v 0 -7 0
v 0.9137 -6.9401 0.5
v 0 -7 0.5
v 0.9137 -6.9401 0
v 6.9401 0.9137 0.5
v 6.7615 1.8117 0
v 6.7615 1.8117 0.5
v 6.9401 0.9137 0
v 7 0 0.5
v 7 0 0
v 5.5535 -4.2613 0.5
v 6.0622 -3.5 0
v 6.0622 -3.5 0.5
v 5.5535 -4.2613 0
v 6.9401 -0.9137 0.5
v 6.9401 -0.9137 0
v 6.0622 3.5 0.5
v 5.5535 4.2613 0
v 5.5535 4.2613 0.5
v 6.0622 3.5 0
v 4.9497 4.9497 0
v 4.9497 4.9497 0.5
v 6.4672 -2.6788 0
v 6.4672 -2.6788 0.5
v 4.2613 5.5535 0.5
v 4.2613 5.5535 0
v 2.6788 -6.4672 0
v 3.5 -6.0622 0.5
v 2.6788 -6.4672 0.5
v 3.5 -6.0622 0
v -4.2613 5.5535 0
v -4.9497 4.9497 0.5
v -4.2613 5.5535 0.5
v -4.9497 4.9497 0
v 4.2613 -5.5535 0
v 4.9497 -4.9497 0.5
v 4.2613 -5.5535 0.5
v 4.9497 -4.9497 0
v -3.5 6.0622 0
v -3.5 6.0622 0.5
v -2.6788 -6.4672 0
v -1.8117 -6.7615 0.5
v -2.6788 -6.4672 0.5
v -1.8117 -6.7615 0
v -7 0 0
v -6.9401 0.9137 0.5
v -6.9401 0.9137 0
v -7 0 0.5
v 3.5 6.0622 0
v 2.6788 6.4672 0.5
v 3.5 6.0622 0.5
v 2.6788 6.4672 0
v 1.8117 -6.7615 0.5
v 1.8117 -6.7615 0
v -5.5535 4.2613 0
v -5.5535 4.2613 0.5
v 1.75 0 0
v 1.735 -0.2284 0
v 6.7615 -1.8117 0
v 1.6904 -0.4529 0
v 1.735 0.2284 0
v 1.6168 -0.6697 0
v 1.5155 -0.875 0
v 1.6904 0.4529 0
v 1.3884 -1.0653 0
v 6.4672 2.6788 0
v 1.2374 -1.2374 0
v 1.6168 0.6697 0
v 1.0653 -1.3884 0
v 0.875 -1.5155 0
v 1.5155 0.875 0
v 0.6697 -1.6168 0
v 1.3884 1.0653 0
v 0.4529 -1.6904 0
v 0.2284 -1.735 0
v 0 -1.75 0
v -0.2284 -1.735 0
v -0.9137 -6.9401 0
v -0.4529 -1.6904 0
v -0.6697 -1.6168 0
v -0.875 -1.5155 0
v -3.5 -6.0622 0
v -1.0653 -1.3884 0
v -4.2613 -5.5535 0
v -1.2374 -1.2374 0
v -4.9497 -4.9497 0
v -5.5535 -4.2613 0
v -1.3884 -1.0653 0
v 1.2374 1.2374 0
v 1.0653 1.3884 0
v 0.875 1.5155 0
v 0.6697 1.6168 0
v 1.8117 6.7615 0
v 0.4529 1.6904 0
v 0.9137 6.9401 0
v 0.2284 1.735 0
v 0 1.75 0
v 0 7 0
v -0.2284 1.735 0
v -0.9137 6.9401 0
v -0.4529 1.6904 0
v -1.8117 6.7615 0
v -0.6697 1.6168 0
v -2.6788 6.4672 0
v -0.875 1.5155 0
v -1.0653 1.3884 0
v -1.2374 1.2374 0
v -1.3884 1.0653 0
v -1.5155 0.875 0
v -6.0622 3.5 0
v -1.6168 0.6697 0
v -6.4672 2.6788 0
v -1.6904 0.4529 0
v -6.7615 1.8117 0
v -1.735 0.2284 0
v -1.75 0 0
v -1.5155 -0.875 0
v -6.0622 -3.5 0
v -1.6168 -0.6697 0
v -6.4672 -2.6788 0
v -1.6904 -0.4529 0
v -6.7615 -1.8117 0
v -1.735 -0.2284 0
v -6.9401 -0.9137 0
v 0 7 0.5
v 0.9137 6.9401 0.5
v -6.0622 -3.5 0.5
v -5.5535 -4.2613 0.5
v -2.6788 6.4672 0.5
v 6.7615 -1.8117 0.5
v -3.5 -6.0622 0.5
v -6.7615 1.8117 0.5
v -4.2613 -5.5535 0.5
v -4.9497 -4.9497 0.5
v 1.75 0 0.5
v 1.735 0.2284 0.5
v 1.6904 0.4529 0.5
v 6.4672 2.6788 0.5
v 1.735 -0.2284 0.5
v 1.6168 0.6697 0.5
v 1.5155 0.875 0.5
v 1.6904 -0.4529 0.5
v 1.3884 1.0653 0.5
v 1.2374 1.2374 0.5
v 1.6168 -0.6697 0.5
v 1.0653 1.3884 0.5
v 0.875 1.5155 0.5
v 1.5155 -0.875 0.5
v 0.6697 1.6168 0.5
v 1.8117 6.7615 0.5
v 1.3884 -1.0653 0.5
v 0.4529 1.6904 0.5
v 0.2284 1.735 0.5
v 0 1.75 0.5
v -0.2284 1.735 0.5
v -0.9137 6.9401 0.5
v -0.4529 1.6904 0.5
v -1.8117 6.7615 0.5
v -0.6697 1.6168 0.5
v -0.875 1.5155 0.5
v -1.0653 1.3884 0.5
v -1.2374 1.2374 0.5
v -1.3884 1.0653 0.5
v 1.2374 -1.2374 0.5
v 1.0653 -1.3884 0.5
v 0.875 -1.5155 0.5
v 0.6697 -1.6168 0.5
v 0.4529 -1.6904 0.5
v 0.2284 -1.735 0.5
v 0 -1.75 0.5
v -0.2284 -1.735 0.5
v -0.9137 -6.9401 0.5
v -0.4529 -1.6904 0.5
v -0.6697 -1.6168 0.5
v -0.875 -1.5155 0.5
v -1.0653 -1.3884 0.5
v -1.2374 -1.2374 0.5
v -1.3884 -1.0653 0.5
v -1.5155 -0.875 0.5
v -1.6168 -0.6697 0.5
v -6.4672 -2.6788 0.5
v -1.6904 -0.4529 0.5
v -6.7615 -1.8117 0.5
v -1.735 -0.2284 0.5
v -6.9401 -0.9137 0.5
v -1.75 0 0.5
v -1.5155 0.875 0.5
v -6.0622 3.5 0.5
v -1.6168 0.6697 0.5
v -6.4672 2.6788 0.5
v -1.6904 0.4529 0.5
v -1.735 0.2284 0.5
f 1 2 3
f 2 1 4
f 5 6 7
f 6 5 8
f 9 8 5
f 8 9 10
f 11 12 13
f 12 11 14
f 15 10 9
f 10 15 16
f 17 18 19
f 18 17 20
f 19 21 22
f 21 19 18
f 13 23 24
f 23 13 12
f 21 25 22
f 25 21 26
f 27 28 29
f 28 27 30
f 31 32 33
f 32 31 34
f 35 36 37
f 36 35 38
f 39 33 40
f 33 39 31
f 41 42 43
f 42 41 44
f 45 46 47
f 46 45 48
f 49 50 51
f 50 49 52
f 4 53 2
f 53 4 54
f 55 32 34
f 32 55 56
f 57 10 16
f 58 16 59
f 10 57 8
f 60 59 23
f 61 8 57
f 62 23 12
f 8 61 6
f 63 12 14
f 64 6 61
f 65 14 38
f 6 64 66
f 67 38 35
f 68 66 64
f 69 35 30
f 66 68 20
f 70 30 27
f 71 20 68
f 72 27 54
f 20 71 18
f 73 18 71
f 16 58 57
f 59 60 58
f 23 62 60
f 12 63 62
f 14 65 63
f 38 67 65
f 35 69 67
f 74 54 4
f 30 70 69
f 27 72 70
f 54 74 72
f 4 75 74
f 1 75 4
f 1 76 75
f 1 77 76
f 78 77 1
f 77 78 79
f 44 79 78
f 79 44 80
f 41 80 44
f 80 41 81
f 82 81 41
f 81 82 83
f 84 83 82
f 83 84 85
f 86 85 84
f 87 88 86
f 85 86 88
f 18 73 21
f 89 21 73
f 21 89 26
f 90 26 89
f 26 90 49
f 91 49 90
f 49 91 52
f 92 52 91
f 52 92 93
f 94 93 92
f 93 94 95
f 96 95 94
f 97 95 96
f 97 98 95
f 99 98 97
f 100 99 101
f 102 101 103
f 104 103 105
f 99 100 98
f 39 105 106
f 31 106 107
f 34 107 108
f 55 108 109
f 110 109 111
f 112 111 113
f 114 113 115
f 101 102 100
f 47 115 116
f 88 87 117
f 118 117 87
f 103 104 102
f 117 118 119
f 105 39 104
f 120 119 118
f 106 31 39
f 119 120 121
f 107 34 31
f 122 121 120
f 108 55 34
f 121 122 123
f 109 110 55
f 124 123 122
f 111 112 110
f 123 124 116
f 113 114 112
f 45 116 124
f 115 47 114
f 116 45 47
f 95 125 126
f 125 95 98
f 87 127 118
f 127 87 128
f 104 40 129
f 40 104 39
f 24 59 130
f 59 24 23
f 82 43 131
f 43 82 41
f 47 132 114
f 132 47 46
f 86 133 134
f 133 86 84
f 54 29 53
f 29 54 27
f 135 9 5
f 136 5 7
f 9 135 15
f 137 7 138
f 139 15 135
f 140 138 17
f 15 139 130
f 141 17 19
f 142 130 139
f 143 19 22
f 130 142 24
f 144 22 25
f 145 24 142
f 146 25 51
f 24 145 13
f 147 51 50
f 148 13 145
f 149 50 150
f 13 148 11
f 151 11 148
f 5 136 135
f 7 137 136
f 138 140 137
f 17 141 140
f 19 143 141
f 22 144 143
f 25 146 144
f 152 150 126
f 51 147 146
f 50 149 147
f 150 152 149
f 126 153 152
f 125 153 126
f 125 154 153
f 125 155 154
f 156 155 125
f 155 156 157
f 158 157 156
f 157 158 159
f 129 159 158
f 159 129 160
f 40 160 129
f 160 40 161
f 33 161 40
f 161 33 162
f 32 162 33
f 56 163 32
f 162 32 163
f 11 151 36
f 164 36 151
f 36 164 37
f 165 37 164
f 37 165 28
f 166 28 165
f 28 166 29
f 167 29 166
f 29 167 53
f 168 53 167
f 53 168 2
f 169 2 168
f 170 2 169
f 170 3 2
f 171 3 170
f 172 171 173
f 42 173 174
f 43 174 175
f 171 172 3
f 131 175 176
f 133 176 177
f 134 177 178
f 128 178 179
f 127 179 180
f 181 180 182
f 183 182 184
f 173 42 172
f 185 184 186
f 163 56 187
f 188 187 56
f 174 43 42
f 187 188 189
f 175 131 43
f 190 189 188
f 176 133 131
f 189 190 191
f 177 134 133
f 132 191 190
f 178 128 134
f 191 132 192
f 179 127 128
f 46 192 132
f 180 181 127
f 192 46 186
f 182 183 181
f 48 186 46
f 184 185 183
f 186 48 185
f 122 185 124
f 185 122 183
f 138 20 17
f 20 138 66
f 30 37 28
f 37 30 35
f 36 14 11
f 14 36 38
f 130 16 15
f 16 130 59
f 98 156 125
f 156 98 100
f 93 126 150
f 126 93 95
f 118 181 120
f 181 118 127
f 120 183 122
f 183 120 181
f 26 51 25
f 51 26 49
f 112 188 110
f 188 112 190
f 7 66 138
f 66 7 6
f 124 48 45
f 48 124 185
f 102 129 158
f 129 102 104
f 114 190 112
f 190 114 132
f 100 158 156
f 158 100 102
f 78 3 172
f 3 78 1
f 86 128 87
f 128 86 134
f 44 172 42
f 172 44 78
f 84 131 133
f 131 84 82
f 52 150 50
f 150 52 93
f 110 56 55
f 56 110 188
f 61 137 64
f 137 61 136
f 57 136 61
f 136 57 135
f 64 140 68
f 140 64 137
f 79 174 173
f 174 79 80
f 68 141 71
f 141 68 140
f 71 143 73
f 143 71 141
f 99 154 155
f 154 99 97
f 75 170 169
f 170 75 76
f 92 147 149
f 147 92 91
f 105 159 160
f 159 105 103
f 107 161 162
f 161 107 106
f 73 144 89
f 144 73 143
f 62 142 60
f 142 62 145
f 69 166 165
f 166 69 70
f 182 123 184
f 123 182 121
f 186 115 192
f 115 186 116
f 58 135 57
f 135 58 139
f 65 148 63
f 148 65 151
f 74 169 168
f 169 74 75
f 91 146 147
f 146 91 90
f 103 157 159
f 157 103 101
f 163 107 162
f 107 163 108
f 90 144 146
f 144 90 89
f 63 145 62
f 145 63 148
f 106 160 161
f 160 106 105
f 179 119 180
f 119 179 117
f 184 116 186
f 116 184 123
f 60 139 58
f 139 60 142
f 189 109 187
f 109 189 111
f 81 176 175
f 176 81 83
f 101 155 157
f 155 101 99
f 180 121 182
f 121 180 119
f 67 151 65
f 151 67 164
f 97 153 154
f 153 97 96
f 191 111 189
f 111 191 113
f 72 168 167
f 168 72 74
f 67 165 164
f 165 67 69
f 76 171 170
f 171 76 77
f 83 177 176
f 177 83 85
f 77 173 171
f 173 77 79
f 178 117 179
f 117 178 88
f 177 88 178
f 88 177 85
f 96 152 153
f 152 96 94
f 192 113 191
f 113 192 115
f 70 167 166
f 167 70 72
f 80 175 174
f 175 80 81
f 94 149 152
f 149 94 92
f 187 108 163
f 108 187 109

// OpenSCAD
// file: parameters.scad
// =============================================================================
// Gen-BN — nightly 2026-10-06 (physics_scorer, honest magpylib watts)
// 8-pole / 9-coil (winding factor 0.945, smoother torque and lower cogging than 6-coil) on the Gen-BK R52 rotors/steel, re-wound dense at fill 0.65 with 9.45 mm copper on 35–70 mm bobbins — more turns per metre than Gen-BK at the same ~360 m wire.
// Clocking 0 deg (magnets N facing S) + D-flat keyed bore + index notch + flip-symmetric hole map.
// Windable 2-piece bobbin; turns = physics_scorer turns_fit; copper only between flanges.
// Steel back-iron: 2× Ø138 × 4.76 mm (3/16") mild-steel discs (steel_backiron_disc.dxf); magnets sit ON the steel
// (through-pockets) -> score with --back-iron.
// =============================================================================
topology            = "dual_rotor";

// --- Wire / winding (physics_scorer winding-fit) -------------------------------
wire_awg            = 26;
wire_od             = 0.45;     // insulated OD mm (bare 0.405)
fill_realistic      = 0.65;     // insulated-wire area / window (DENSE layered wind with a jig; scorer cap 0.65)
turns               = 486;       // = physics_scorer turns_fit (do NOT raise)
coil_former_type    = "bobbin";
coil_core_inset     = 12.60;     // radial copper build: hub = copper boundary inset by this
wind_build_axial    = 0.0;      // nothing proud of the flanges
wind_build_radial   = 0.0;

// --- Bobbin (base + lid) ---------------------------------------------------------
coil_id_r           = 35.00;    // copper boundary sector
coil_od_r           = 70.00;
span_deg            = 33.94;    // = pitch - 2*asin((wall+0.85)/coil_id_r) -> >=1.2 mm stator web
former_web          = 9.45;     // copper height between flanges (TALL copper: steel keeps Bz up)
flange_t            = 0.80;     // >= 0.8 mm FDM wall rule (tall winds push on the flanges)
wall                = 1.00;     // flange lip beyond copper
former_bare_h       = former_web + 2 * flange_t;
coil_envelope_h     = former_bare_h + 2 * wind_build_axial;
tab_w               = 7.0;
tab_len             = 7.0;
tab_h               = former_bare_h / 2;
pin_d               = 1.9;      // 1.75 mm filament locating pin
coil_mount_r        = coil_od_r + 0.2 + 4.0;
lead_y              = 1.6;
lead_slot_w         = 0.9;
lead_groove_d       = 0.6;

// --- Gap -------------------------------------------------------------------------
run_clear           = 0.50;     // rotor face -> flange
gap_spacer_h        = run_clear + wind_build_axial;
m2m                 = coil_envelope_h + 2 * run_clear;   // rotor face to rotor face (= gap_sleeve length)

// --- Stator ----------------------------------------------------------------------
coil_stations       = 9;
bay_clear           = 0.25;
stator_thick        = former_bare_h;                        // bobbins flush both faces
stator_od           = 160.0;
shaft_clear_stator  = 14.0;     // stator is static; gap sleeve OD 12 spins inside

// --- Rotor(s) --------------------------------------------------------------------
magnet_Br           = 1.43;     // N52
magnet_d_large      = 20.0;
magnet_h_large      = 5.0;      // one O20x5 per pocket
magnet_h_small      = 5.0;      // one O5x5 per pocket
halbach_magnetisation = "diametric"; // O5x5 assist magnets MUST be DIAMETRICALLY magnetised (tangential)
rotor_b_same_axis   = true;     // same-index magnets share one axis: N faces S across the gap
large_pocket_d      = 20.3;
small_pocket_d      = 5.3;
pocket_h            = 5.10;     // THROUGH the carrier: magnet back face sits on the steel disc
large_n             = 8;
R_large             = 52.0;
R_small_inner       = 41.0;
R_small_mid         = 52.0;
R_small_outer       = 63.0;
small_r_list        = [R_small_inner, R_small_mid, R_small_outer];   // O5 pockets between poles
carrier_od          = 138.0;
carrier_thick       = pocket_h;
hub_h               = 12.0;     // > steel_t + insert: radial set-screw clears the steel
hub_od              = 24.0;     // slim hub so the M4 brace rods fit at R~18 inside the coil ring
hub_insert_d        = 4.0;      // M3 heat-set insert, radial, bears on the D-flat
rotor_b_offset_deg  = 0.0;      // CLOCKING: magnets directly opposite
shaft_key           = "dflat";
dflat_depth         = 0.5;      // 8 mm shaft with 0.5 mm flat (7.5 across flat)
index_notch_d       = 3.0;

// --- Steel back-iron (buyable laser-cut) -------------------------------------------
steel_t             = 4.76;      // mild steel thickness (image method ignores it; sized from steel_flux.py so the return path stays well below saturation)
steel_center_hole   = 26.0;     // slips over the rotor hub (OD 24)
steel_od            = carrier_od;   // steel disc OD = rotor carrier OD

// --- Modular MAX interface ----------------------------------------------------------
shaft_bore          = 8.35;
dflat_x             = 4.0 - dflat_depth + (shaft_bore - 8.0) / 2;
bearing_d           = 21.85;
bearing_h           = 7.2;
m3_clear            = 3.5;
bolt_r_inner        = 30.0;     // M3 steel-disc clamp bolts (inside the magnet ring)
bolt_n_inner        = 4;
bolt_inner_angles   = [0, 90, 180, 270];
bolt_r_outer        = 65.0;     // M3 steel-disc clamp bolts (outside the magnet ring)
bolt_outer_angles   = [45, 135, 225, 315];
flange_bolt_r       = 75.0;     // frame rods: OUTSIDE the rotor OD (rotors spin inside them)
flange_bolt_n       = 9;
flange_bolt_offset  = 20.00;    // between coil stations -> never cuts a lead groove/tab
brace_r             = 18.0;
brace_d             = 4.3;      // temporary M4 jack rods (assembly only)
brace_n             = 4;
brace_angles        = [45, 135, 225, 315];          // flip-symmetric

spacer_pad_od       = 14.0;
spacer_pad_id       = m3_clear;
endbell_od          = 160.0;
endbell_thick       = 8.0;
endbell_shaft_clear = 10.0;
collar_h            = 10.0;
standoff_od         = 9.0;
frame_standoff_h    = run_clear + carrier_thick + hub_h + collar_h + 2.0;
sleeve_od           = 12.0;
plate_max_mm        = 410;

$fn = 64;
// main file
// Gen-BN — assembly gap shim, h = run_clear (rotor face -> flange); copper is inside the flanges
include <parameters.scad>;
$fn = 48;
difference() {
    cylinder(d=spacer_pad_od, h=gap_spacer_h);
    translate([0, 0, -0.1]) cylinder(d=spacer_pad_id, h=gap_spacer_h + 0.2);
}
